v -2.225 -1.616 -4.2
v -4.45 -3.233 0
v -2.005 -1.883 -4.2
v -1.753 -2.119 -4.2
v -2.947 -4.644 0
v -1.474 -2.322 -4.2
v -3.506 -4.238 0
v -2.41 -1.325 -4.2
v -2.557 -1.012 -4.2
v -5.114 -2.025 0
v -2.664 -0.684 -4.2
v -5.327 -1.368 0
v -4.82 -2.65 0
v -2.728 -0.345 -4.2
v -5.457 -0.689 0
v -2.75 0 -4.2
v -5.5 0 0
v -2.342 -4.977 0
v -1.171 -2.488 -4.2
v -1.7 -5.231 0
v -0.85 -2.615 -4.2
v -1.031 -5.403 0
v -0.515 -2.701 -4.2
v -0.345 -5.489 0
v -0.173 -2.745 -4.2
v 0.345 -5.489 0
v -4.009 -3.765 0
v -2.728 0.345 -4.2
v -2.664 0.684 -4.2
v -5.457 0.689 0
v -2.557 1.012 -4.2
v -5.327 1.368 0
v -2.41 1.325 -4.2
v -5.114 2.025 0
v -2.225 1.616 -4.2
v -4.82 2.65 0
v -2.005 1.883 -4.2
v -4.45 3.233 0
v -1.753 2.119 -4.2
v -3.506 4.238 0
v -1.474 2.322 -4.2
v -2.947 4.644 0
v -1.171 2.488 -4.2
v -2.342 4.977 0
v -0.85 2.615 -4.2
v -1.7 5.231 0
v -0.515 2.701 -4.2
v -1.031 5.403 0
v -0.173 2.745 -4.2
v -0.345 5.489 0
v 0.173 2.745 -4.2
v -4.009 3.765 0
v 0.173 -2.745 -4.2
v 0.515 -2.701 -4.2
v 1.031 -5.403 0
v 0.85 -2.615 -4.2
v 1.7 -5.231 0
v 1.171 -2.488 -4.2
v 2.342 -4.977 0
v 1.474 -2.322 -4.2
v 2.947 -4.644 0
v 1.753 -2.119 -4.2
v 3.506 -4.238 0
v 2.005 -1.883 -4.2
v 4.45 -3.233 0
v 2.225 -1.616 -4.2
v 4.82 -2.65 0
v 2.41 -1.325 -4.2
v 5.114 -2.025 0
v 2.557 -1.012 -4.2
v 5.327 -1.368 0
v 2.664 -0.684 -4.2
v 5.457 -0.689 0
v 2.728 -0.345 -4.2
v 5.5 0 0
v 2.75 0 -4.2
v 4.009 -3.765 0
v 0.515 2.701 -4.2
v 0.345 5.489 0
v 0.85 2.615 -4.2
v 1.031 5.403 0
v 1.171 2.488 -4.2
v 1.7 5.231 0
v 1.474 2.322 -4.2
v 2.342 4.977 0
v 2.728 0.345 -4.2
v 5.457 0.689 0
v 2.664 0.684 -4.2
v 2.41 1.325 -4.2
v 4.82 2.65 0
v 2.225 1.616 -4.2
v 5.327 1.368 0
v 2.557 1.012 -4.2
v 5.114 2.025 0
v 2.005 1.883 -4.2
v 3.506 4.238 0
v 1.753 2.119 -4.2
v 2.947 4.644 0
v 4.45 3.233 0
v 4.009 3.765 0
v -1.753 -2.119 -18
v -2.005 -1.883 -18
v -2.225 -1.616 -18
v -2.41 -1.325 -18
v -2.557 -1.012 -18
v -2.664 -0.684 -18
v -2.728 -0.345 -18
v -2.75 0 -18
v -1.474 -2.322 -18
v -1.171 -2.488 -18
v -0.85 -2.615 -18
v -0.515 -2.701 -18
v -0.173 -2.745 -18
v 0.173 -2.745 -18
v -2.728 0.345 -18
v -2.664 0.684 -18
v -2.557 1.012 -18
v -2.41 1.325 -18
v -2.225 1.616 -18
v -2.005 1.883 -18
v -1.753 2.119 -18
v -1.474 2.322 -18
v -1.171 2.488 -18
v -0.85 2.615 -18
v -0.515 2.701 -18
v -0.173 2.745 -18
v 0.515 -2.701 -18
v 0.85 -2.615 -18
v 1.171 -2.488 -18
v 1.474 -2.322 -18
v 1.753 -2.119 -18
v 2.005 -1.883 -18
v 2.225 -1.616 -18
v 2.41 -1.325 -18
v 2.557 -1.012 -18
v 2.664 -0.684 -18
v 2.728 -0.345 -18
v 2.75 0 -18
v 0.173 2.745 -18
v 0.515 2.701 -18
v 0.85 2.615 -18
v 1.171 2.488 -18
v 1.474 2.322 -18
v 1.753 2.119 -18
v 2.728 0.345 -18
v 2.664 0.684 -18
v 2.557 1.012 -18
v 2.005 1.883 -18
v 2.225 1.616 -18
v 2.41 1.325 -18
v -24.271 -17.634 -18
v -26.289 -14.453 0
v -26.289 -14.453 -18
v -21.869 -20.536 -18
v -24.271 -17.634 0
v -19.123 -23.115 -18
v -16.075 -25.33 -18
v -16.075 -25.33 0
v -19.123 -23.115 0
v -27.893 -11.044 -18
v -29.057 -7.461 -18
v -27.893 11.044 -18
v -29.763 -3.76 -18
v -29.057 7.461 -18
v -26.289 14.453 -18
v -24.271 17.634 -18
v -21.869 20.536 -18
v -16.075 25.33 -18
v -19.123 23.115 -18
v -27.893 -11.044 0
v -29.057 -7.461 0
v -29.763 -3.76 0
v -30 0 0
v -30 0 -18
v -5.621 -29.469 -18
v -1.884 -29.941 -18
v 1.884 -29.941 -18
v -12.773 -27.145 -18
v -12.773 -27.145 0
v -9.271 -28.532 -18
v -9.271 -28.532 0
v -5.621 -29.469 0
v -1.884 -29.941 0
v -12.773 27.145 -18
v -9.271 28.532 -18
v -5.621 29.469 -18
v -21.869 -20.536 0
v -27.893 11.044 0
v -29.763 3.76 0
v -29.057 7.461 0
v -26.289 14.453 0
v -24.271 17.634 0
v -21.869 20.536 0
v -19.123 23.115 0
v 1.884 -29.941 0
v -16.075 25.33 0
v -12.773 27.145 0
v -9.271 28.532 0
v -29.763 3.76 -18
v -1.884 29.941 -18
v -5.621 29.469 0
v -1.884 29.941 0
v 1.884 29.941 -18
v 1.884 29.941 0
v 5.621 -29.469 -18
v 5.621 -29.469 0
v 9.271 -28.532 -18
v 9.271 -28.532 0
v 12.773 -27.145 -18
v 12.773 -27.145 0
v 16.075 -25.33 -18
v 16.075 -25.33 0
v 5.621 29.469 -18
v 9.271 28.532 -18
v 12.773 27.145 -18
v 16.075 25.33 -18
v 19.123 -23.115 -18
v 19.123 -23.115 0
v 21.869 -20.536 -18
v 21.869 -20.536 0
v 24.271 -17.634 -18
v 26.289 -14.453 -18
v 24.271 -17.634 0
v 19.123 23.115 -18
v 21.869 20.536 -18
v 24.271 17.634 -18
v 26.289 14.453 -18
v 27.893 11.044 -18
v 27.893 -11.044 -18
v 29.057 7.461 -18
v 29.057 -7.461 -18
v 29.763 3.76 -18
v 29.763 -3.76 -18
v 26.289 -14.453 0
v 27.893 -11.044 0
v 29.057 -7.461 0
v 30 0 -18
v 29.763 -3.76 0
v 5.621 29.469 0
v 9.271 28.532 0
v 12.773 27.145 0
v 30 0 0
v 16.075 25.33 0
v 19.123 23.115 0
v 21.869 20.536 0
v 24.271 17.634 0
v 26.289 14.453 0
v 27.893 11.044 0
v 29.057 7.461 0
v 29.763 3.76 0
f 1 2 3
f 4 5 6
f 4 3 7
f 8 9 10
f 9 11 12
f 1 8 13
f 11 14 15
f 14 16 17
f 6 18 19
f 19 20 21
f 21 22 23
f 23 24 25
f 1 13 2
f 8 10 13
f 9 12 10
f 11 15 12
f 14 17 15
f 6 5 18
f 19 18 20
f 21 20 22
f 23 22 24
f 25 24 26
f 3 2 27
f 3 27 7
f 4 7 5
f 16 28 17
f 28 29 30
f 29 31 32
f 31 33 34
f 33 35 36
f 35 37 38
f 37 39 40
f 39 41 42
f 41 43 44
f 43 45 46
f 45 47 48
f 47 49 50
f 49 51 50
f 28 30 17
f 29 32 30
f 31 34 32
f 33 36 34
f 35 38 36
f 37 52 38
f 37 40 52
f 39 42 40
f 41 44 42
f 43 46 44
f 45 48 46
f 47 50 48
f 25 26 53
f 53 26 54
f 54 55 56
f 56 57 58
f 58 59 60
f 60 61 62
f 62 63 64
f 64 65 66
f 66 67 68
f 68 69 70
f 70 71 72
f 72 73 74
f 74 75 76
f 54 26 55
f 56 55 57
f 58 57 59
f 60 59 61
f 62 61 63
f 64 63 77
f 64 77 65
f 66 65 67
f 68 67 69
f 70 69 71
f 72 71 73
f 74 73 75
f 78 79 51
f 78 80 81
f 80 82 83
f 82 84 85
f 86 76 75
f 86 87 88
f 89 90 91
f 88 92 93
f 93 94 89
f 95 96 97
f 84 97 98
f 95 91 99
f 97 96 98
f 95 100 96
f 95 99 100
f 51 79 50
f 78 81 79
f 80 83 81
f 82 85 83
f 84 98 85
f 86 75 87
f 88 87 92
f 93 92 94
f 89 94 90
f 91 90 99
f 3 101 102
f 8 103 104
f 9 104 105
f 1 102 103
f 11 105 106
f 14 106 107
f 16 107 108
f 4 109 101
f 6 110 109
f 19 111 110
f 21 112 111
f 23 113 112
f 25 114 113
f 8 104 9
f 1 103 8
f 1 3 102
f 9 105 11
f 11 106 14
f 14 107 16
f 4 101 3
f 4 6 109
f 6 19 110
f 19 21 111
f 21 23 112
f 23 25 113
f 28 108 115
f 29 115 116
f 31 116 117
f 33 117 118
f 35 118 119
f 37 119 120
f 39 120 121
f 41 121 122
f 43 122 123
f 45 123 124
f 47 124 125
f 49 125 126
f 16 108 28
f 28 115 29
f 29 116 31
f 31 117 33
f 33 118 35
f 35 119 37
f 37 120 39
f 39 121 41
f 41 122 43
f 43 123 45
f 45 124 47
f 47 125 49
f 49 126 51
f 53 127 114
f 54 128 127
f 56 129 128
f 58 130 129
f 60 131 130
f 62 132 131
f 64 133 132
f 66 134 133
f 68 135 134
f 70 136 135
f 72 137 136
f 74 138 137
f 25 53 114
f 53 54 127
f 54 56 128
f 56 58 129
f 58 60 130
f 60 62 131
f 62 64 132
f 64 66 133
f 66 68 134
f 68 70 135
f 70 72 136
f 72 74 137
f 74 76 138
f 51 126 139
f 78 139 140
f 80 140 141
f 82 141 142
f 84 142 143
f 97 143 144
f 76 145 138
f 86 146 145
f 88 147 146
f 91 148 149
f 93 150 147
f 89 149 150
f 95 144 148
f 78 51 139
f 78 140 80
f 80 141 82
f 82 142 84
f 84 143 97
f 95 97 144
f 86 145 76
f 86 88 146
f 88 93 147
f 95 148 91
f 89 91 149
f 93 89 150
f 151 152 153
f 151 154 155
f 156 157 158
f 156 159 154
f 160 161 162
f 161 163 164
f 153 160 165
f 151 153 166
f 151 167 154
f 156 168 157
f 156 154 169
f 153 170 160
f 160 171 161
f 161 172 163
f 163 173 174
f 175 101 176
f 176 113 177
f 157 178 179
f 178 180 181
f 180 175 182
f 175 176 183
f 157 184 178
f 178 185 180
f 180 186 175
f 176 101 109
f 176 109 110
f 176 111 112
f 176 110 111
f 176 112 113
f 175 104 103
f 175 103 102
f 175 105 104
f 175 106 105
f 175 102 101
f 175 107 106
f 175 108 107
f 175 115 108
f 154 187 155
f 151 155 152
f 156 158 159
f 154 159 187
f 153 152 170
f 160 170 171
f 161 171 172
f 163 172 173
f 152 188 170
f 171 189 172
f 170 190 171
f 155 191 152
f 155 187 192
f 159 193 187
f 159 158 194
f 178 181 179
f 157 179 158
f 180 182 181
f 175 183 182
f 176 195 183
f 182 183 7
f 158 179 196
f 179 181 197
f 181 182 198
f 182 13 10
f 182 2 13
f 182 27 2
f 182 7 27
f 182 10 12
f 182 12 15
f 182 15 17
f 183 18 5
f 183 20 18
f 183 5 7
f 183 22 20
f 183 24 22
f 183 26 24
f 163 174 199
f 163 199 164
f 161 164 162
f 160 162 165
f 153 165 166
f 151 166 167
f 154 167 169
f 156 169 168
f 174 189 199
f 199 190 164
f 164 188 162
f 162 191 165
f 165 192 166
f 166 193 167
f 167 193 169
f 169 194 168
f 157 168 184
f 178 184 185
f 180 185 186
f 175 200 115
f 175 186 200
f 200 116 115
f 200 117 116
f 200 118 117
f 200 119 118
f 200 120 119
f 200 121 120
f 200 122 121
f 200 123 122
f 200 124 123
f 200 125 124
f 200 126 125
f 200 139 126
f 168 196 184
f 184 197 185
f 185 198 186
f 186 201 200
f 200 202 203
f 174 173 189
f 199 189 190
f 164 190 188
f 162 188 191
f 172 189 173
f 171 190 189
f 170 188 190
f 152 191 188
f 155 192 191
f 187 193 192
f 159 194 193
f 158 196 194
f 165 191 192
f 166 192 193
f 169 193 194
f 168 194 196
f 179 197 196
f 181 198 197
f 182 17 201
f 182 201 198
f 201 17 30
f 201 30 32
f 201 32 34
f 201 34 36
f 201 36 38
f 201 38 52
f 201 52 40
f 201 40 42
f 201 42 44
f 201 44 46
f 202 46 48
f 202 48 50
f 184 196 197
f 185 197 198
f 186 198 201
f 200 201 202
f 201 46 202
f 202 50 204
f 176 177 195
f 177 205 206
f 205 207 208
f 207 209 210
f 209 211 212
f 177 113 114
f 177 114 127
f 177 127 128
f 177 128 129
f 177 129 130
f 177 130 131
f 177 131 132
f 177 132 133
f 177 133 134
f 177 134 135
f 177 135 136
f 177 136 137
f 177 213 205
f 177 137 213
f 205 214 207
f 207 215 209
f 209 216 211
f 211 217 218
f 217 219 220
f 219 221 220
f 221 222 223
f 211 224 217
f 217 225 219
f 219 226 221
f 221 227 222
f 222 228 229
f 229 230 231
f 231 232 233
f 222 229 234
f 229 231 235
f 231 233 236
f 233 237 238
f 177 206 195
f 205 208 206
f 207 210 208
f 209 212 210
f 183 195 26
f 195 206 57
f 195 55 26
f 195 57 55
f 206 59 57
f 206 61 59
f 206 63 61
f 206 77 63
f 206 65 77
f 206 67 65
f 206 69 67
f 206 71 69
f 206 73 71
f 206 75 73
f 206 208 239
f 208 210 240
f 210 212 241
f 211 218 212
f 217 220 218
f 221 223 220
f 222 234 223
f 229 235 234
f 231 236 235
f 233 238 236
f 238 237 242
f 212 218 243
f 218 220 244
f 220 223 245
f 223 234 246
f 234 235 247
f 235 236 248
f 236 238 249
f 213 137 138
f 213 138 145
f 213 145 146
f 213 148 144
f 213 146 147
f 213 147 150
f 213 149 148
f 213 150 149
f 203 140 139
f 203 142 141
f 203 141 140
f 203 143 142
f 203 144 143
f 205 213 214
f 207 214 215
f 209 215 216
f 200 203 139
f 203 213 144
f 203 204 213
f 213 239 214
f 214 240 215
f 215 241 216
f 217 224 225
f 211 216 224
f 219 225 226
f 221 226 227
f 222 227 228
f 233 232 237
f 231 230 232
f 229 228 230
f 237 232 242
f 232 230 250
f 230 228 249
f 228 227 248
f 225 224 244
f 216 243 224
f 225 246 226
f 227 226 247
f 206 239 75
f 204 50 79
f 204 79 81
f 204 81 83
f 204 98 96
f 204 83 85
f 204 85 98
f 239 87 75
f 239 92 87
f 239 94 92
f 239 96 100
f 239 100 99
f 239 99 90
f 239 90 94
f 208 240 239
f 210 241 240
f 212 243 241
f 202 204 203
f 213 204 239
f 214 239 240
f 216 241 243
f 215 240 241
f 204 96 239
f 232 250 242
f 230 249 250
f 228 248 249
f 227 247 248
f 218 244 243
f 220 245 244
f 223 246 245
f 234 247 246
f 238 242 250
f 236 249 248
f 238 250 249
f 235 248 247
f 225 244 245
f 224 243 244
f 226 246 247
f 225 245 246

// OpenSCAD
$fn = 50;

difference() {
	union() {
		translate(v = [0, 0, -18.0]) {
			cylinder(h = 18, r = 30.0);
		}
	}
	union() {
		translate(v = [0, 0, 0]) {
			rotate(a = [0, 0, 0]) {
				difference() {
					union() {
						translate(v = [0, 0, -21.0]) {
							cylinder(h = 21, r = 2.25);
						}
						translate(v = [0, 0, -4.2]) {
							cylinder(h = 4.2, r1 = 2.75, r2 = 5.5);
						}
						translate(v = [0, 0, -21.0]) {
							cylinder(h = 21, r = 2.75);
						}
						translate(v = [0, 0, -21.0]) {
							cylinder(h = 21, r = 2.25);
						}
					}
					union();
				}
			}
		}
	}
}
